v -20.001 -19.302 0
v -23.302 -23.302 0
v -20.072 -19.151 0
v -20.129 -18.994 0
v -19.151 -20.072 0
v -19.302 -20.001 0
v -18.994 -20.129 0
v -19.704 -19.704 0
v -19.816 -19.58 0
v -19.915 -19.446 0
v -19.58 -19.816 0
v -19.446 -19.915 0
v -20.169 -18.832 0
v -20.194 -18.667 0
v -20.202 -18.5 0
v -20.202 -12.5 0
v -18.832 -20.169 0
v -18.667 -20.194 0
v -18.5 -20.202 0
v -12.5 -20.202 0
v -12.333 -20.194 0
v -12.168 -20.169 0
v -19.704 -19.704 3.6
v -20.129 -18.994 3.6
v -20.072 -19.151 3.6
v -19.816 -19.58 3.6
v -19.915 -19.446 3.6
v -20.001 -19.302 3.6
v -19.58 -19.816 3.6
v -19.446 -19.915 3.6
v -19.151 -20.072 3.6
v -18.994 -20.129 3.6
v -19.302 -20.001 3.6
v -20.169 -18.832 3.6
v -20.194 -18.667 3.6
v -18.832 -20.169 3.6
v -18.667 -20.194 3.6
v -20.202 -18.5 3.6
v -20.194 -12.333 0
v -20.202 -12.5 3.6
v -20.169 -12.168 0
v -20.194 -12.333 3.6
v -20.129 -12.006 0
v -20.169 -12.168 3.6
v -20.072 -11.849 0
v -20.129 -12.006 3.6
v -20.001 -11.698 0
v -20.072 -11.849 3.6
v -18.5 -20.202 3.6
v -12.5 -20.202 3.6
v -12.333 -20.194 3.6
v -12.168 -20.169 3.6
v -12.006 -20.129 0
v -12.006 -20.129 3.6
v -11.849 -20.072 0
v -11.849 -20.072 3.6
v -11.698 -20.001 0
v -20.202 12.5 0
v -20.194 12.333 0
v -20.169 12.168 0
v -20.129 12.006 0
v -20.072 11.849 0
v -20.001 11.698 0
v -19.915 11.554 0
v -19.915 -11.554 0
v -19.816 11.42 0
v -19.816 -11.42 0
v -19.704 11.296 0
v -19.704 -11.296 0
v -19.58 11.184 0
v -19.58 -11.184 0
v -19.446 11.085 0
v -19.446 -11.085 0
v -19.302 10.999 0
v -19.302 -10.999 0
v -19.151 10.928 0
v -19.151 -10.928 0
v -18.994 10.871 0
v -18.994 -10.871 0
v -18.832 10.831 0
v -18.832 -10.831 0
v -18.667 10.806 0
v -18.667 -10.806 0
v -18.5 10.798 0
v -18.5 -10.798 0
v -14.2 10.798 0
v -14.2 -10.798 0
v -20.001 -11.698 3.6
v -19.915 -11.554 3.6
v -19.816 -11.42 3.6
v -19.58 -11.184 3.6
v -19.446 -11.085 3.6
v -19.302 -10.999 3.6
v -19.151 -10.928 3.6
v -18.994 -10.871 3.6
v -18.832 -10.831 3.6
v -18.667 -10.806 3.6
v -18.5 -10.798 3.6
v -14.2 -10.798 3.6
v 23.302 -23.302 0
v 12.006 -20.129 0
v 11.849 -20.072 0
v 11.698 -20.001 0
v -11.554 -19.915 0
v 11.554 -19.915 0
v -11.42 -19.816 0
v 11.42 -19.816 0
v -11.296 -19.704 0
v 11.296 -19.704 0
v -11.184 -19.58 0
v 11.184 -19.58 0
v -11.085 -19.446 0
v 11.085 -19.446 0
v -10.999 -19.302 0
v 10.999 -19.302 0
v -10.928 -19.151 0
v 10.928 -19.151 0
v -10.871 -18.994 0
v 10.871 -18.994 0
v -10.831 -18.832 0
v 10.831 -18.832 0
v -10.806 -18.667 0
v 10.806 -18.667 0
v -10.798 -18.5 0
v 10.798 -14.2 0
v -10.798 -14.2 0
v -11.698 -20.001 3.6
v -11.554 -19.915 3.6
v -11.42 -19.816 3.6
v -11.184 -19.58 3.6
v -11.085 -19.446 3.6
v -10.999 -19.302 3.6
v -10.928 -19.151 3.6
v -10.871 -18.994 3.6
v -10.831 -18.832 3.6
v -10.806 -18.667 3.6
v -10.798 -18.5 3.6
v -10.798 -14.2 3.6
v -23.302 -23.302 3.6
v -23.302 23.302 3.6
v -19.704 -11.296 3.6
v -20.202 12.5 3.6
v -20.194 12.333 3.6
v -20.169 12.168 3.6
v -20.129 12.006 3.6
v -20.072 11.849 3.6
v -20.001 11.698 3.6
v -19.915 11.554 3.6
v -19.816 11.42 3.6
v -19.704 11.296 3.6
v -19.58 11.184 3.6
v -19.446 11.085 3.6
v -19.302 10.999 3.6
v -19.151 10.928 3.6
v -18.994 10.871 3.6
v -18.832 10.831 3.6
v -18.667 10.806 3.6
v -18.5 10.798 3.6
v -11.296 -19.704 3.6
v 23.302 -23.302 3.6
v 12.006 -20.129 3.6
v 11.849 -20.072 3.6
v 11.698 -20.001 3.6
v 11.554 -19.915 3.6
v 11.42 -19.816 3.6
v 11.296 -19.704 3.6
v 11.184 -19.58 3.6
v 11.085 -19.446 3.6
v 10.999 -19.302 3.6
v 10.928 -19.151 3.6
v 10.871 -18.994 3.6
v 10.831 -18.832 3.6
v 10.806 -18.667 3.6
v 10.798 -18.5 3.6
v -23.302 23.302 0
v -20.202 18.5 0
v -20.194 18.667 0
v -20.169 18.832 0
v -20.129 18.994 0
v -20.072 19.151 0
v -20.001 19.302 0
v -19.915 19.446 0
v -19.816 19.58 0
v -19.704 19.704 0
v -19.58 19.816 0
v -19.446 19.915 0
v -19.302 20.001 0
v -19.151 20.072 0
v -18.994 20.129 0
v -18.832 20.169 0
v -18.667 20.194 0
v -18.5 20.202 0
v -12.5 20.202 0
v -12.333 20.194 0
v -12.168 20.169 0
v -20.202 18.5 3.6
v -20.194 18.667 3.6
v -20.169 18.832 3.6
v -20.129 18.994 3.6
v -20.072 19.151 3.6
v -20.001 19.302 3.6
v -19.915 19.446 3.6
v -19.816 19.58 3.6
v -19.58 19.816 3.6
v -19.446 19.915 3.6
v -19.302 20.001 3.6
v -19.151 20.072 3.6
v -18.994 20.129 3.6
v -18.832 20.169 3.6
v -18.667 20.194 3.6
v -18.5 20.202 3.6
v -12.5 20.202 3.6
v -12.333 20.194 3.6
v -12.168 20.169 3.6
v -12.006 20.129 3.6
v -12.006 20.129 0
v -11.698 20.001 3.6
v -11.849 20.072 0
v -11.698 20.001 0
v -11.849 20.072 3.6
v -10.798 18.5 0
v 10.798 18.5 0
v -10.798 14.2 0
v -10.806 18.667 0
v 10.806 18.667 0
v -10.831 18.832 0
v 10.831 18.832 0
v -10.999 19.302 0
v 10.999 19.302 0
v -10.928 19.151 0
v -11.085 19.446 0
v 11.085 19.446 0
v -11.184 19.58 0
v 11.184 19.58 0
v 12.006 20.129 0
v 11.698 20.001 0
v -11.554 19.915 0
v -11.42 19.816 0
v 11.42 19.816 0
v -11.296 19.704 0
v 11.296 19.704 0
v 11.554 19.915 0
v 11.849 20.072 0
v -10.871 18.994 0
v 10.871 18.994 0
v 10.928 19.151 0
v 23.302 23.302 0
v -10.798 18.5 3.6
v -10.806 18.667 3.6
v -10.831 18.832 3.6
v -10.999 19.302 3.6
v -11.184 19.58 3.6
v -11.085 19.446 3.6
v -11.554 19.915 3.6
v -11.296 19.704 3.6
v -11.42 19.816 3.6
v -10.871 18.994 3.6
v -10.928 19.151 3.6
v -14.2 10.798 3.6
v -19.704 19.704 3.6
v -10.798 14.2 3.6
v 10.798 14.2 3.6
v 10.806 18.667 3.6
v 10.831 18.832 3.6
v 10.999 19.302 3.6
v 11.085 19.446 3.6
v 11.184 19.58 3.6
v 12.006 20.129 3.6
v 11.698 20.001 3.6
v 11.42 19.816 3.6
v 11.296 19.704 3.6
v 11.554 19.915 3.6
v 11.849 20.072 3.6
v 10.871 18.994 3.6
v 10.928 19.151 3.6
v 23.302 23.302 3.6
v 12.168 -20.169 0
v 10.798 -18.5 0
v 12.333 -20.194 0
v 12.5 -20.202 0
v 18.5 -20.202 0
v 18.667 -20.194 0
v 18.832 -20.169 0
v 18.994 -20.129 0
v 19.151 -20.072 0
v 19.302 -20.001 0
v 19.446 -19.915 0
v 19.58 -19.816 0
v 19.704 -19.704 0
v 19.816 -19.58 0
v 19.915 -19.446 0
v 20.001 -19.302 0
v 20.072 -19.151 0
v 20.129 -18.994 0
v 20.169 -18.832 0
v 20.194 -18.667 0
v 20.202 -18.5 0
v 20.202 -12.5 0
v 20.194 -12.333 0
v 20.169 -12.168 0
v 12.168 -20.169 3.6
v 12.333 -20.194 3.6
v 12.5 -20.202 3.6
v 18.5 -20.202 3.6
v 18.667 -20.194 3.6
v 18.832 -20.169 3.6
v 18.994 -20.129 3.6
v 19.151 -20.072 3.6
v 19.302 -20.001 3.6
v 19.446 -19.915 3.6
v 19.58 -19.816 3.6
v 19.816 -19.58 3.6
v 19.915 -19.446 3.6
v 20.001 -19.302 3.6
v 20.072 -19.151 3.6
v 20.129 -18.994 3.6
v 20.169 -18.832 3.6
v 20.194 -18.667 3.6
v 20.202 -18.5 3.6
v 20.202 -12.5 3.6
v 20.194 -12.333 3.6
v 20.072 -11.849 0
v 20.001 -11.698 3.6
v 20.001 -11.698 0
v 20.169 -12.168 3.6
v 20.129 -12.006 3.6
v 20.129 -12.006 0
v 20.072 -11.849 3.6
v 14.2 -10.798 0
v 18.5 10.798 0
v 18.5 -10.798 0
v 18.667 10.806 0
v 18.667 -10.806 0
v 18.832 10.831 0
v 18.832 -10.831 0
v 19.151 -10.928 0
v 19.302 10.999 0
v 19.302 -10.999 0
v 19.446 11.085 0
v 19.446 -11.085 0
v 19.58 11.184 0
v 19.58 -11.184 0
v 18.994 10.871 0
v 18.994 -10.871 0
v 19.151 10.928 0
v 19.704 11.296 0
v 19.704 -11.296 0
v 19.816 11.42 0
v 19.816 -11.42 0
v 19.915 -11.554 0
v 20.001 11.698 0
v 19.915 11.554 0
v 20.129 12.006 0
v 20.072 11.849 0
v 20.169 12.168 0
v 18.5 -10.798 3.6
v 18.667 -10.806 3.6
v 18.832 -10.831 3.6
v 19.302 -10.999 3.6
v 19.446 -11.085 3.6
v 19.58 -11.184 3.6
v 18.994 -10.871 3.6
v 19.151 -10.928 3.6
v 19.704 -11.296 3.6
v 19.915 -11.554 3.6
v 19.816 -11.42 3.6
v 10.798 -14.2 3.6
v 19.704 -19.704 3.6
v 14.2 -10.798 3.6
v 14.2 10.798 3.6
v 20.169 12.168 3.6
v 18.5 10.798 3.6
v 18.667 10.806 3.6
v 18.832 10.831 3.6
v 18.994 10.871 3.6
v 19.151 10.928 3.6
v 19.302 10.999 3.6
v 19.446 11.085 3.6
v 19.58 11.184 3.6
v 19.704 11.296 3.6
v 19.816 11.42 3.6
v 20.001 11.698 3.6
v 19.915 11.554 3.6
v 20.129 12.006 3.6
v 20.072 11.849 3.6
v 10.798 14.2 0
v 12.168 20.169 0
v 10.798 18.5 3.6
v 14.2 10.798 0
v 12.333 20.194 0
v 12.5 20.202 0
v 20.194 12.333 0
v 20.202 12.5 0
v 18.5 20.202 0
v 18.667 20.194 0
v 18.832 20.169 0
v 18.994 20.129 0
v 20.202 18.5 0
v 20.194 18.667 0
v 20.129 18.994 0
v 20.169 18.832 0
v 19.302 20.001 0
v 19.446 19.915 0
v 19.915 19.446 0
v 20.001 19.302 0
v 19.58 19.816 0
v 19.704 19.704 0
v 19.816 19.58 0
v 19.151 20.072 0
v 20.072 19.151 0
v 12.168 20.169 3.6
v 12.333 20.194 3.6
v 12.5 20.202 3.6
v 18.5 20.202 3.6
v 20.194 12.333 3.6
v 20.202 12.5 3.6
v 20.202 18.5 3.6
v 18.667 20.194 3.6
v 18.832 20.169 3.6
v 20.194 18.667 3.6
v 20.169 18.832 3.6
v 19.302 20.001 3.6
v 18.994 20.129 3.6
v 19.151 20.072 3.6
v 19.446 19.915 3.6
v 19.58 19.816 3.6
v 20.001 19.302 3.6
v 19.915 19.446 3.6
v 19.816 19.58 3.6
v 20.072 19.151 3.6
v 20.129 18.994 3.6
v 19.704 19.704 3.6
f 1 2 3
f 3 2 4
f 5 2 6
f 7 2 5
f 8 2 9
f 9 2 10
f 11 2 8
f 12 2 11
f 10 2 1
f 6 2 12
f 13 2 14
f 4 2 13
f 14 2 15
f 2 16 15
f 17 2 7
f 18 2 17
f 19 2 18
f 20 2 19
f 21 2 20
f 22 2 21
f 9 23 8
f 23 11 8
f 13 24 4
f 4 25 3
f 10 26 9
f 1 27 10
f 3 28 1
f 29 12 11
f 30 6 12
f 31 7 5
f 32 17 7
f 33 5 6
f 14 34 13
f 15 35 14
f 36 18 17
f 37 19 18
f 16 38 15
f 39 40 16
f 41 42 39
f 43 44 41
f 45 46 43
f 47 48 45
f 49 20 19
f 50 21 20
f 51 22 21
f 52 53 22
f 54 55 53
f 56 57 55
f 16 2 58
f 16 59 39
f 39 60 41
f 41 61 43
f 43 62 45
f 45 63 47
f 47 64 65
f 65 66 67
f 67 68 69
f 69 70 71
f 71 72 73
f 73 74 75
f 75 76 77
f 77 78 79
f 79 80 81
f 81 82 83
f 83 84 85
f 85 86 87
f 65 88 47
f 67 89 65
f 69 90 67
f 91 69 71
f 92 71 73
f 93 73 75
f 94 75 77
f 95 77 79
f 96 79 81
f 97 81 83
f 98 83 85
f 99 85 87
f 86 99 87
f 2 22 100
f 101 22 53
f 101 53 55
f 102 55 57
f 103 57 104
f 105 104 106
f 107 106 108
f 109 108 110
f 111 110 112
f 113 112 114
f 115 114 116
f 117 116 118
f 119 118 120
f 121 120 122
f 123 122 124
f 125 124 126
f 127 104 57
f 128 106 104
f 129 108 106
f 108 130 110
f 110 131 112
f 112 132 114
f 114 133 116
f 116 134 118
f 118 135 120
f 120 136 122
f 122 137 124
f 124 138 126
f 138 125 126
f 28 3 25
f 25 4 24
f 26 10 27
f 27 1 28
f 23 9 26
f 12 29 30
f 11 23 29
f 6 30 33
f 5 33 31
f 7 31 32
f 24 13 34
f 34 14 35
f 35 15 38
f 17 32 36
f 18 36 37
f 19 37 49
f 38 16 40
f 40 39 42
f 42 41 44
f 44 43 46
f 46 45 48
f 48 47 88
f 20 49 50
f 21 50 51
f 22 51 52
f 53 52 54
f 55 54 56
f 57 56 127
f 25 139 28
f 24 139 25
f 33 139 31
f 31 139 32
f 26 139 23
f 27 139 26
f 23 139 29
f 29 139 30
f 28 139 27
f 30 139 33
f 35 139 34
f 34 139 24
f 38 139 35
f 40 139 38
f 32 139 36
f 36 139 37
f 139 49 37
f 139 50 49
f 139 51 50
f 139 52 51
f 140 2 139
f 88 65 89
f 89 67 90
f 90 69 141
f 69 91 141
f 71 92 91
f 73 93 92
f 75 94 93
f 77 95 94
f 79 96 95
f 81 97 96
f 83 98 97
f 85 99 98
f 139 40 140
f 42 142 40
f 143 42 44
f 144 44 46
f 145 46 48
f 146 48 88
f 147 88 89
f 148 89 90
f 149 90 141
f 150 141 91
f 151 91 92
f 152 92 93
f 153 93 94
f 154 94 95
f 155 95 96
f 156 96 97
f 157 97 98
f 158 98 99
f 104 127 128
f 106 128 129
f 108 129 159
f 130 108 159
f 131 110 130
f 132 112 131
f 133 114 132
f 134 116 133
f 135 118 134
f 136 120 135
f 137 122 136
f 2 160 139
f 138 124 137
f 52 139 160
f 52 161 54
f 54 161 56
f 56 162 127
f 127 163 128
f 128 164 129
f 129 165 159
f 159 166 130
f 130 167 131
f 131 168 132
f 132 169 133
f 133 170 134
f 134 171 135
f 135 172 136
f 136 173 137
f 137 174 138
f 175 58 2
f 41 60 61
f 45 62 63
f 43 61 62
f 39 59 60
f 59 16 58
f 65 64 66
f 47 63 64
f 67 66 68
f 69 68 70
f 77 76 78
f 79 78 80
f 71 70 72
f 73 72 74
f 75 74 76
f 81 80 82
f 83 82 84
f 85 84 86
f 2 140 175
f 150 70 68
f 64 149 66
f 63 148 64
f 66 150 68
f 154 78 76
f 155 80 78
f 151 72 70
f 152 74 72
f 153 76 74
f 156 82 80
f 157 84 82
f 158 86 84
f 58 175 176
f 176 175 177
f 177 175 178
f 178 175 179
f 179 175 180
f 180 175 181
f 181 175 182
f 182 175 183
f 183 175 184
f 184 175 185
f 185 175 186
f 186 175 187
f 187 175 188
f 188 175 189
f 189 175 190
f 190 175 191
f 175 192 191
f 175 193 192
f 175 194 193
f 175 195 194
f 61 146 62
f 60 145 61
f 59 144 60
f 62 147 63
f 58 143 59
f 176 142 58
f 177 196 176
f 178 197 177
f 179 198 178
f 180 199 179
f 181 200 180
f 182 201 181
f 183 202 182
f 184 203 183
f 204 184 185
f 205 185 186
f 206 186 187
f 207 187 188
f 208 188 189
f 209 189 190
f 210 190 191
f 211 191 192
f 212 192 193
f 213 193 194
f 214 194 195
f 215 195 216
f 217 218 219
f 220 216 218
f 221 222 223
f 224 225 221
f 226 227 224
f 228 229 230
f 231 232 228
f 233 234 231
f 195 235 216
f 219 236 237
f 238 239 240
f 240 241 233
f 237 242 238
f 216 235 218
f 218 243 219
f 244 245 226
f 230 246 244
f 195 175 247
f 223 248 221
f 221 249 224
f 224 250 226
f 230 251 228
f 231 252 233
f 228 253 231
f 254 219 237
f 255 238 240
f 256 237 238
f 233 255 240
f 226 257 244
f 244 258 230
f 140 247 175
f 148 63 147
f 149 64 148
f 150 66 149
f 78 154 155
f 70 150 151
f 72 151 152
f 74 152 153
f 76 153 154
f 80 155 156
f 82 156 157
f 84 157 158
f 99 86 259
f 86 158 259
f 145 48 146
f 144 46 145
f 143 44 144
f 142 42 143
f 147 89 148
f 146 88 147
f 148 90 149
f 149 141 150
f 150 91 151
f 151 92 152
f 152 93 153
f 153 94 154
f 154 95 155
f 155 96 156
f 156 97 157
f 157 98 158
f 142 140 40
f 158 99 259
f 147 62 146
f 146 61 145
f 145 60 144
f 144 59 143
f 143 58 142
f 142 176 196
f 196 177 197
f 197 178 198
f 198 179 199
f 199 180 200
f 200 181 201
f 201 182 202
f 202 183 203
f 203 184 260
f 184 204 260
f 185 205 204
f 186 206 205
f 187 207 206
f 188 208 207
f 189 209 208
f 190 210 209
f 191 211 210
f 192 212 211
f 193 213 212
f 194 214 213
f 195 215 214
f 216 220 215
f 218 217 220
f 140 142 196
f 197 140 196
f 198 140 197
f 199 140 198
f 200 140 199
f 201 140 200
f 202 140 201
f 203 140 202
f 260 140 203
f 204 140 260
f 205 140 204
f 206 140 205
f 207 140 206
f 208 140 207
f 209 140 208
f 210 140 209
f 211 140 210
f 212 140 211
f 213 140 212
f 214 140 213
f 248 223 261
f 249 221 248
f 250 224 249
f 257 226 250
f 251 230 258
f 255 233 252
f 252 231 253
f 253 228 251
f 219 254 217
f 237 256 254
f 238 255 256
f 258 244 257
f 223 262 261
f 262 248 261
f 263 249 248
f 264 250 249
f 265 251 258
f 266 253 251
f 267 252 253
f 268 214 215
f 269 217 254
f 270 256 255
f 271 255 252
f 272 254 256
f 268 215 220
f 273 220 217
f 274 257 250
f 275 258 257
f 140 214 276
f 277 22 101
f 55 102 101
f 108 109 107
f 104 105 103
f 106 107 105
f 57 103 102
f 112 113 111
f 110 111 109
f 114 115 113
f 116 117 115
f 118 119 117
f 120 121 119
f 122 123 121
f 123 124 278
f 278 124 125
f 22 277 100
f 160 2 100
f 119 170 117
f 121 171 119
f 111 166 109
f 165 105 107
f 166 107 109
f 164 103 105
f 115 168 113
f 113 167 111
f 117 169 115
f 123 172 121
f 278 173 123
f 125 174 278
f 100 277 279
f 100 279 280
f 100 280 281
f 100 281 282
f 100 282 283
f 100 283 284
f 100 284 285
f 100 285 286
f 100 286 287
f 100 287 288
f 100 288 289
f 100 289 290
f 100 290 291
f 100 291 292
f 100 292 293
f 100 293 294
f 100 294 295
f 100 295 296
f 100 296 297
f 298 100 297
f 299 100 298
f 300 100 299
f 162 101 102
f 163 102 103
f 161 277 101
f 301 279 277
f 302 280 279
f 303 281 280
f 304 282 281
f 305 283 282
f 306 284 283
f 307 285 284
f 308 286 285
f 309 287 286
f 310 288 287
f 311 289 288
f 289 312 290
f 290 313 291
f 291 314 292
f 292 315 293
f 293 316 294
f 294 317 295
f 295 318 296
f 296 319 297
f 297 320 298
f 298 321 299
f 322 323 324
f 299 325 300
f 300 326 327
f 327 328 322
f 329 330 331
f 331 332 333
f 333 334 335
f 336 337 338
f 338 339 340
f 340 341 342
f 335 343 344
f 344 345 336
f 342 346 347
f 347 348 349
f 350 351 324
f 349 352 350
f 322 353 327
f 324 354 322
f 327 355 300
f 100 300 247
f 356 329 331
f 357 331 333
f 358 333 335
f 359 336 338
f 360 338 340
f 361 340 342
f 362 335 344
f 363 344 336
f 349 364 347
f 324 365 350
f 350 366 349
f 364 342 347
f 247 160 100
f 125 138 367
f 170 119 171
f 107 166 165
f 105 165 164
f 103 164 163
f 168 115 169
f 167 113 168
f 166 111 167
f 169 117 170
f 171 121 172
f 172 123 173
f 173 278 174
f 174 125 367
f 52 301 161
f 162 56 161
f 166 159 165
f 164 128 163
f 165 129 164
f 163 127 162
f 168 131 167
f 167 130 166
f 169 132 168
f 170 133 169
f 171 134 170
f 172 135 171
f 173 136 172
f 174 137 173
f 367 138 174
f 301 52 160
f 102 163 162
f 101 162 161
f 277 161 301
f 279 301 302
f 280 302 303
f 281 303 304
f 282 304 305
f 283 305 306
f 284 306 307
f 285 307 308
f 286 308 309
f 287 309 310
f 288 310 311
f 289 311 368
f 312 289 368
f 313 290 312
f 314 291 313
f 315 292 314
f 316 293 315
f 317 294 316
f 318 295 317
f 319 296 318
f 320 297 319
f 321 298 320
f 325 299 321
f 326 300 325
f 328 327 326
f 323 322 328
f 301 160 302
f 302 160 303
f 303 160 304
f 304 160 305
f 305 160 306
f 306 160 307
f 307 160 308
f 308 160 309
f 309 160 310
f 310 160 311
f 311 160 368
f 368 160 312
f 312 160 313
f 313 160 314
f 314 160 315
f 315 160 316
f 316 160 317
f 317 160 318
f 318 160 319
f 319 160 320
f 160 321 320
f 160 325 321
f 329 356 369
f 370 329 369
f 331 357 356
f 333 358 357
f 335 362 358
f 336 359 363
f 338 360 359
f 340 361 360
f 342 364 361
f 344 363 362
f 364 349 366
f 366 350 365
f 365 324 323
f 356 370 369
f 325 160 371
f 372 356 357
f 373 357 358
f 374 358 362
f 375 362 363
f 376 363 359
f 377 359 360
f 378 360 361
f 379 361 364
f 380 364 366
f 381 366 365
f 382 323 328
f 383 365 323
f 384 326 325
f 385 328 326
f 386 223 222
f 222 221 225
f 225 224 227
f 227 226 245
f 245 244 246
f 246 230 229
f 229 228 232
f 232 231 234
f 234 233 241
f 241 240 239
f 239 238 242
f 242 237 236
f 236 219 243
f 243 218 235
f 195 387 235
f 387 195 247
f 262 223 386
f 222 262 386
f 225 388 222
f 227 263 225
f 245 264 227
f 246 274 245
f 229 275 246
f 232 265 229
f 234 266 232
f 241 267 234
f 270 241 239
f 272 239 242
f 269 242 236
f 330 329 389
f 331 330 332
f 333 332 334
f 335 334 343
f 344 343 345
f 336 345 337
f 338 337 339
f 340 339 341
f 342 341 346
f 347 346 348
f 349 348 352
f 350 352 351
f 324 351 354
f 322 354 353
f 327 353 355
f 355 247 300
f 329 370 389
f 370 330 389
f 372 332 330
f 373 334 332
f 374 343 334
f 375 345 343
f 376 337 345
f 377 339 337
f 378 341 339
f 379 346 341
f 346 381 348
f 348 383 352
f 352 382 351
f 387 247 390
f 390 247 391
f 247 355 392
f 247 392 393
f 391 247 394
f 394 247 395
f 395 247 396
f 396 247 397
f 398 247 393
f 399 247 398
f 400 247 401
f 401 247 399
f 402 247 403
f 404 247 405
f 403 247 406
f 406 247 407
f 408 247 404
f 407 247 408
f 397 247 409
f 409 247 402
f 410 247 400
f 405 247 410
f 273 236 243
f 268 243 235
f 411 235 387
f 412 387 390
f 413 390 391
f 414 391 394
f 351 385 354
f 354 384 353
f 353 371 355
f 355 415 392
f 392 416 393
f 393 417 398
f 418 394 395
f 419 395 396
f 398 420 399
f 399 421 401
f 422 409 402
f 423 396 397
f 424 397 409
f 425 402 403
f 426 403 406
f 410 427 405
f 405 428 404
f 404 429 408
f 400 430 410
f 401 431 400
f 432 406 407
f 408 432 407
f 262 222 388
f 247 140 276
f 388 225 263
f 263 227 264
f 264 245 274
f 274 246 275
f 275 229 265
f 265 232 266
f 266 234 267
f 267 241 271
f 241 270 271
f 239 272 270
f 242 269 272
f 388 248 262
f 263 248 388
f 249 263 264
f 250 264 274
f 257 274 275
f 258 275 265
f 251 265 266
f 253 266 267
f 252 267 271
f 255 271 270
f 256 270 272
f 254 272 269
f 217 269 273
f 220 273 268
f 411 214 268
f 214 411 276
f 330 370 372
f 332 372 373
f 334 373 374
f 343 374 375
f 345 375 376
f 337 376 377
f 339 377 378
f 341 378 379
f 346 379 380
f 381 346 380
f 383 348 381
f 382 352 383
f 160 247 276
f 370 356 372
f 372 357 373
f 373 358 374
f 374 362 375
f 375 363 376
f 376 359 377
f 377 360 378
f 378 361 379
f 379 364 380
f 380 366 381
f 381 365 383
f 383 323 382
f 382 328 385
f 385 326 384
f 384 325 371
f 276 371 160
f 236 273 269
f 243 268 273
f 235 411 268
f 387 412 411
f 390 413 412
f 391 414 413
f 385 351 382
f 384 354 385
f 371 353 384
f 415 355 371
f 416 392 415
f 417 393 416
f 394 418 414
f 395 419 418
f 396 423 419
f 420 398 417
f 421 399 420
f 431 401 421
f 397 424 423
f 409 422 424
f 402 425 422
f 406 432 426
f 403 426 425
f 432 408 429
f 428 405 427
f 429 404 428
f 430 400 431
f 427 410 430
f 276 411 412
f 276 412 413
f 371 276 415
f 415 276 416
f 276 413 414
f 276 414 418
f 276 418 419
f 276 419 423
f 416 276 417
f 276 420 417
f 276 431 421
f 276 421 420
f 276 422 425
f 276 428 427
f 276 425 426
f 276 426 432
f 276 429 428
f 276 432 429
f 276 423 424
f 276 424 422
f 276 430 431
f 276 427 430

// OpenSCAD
// assembly: printed bodies in the closed pose; references are % ghosts (never printed)
color("#4f81bd") {
  // body plate
  difference() {
    union() {
      // body plate (plate)
      multmatrix([[1, 0, 0, 0], [0, 1, 0, 0], [0, 0, 1, 0], [0, 0, 0, 1]]) translate([-23.30205, -23.30205, 0]) cube([46.6041, 46.6041, 3.6]);
    }
    // cut slot_0 (bolt_slot)
    multmatrix([[1, 0, 0, -15.5], [0, 1, 0, -15.5], [0, 0, 1, -1], [0, 0, 0, 1]]) linear_extrude(height=5.6) polygon(points=[[3, -4.70205], [3.16683, -4.693854], [3.332054, -4.669346], [3.494079, -4.62876], [3.651346, -4.572489], [3.802341, -4.501074], [3.945608, -4.415203], [4.079769, -4.315703], [4.203531, -4.203531], [4.315703, -4.079769], [4.415203, -3.945608], [4.501074, -3.802341], [4.572489, -3.651346], [4.62876, -3.494079], [4.669346, -3.332054], [4.693854, -3.16683], [4.70205, -3], [4.70205, 3], [4.693854, 3.16683], [4.669346, 3.332054], [4.62876, 3.494079], [4.572489, 3.651346], [4.501074, 3.802341], [4.415203, 3.945608], [4.315703, 4.079769], [4.203531, 4.203531], [4.079769, 4.315703], [3.945608, 4.415203], [3.802341, 4.501074], [3.651346, 4.572489], [3.494079, 4.62876], [3.332054, 4.669346], [3.16683, 4.693854], [3, 4.70205], [-3, 4.70205], [-3.16683, 4.693854], [-3.332054, 4.669346], [-3.494079, 4.62876], [-3.651346, 4.572489], [-3.802341, 4.501074], [-3.945608, 4.415203], [-4.079769, 4.315703], [-4.203531, 4.203531], [-4.315703, 4.079769], [-4.415203, 3.945608], [-4.501074, 3.802341], [-4.572489, 3.651346], [-4.62876, 3.494079], [-4.669346, 3.332054], [-4.693854, 3.16683], [-4.70205, 3], [-4.70205, -3], [-4.693854, -3.16683], [-4.669346, -3.332054], [-4.62876, -3.494079], [-4.572489, -3.651346], [-4.501074, -3.802341], [-4.415203, -3.945608], [-4.315703, -4.079769], [-4.203531, -4.203531], [-4.079769, -4.315703], [-3.945608, -4.415203], [-3.802341, -4.501074], [-3.651346, -4.572489], [-3.494079, -4.62876], [-3.332054, -4.669346], [-3.16683, -4.693854], [-3, -4.70205]]);
    // cut slot_1 (bolt_slot)
    multmatrix([[1, 0, 0, 15.5], [0, 1, 0, -15.5], [0, 0, 1, -1], [0, 0, 0, 1]]) linear_extrude(height=5.6) polygon(points=[[3, -4.70205], [3.16683, -4.693854], [3.332054, -4.669346], [3.494079, -4.62876], [3.651346, -4.572489], [3.802341, -4.501074], [3.945608, -4.415203], [4.079769, -4.315703], [4.203531, -4.203531], [4.315703, -4.079769], [4.415203, -3.945608], [4.501074, -3.802341], [4.572489, -3.651346], [4.62876, -3.494079], [4.669346, -3.332054], [4.693854, -3.16683], [4.70205, -3], [4.70205, 3], [4.693854, 3.16683], [4.669346, 3.332054], [4.62876, 3.494079], [4.572489, 3.651346], [4.501074, 3.802341], [4.415203, 3.945608], [4.315703, 4.079769], [4.203531, 4.203531], [4.079769, 4.315703], [3.945608, 4.415203], [3.802341, 4.501074], [3.651346, 4.572489], [3.494079, 4.62876], [3.332054, 4.669346], [3.16683, 4.693854], [3, 4.70205], [-3, 4.70205], [-3.16683, 4.693854], [-3.332054, 4.669346], [-3.494079, 4.62876], [-3.651346, 4.572489], [-3.802341, 4.501074], [-3.945608, 4.415203], [-4.079769, 4.315703], [-4.203531, 4.203531], [-4.315703, 4.079769], [-4.415203, 3.945608], [-4.501074, 3.802341], [-4.572489, 3.651346], [-4.62876, 3.494079], [-4.669346, 3.332054], [-4.693854, 3.16683], [-4.70205, 3], [-4.70205, -3], [-4.693854, -3.16683], [-4.669346, -3.332054], [-4.62876, -3.494079], [-4.572489, -3.651346], [-4.501074, -3.802341], [-4.415203, -3.945608], [-4.315703, -4.079769], [-4.203531, -4.203531], [-4.079769, -4.315703], [-3.945608, -4.415203], [-3.802341, -4.501074], [-3.651346, -4.572489], [-3.494079, -4.62876], [-3.332054, -4.669346], [-3.16683, -4.693854], [-3, -4.70205]]);
    // cut slot_2 (bolt_slot)
    multmatrix([[1, 0, 0, -15.5], [0, 1, 0, 15.5], [0, 0, 1, -1], [0, 0, 0, 1]]) linear_extrude(height=5.6) polygon(points=[[3, -4.70205], [3.16683, -4.693854], [3.332054, -4.669346], [3.494079, -4.62876], [3.651346, -4.572489], [3.802341, -4.501074], [3.945608, -4.415203], [4.079769, -4.315703], [4.203531, -4.203531], [4.315703, -4.079769], [4.415203, -3.945608], [4.501074, -3.802341], [4.572489, -3.651346], [4.62876, -3.494079], [4.669346, -3.332054], [4.693854, -3.16683], [4.70205, -3], [4.70205, 3], [4.693854, 3.16683], [4.669346, 3.332054], [4.62876, 3.494079], [4.572489, 3.651346], [4.501074, 3.802341], [4.415203, 3.945608], [4.315703, 4.079769], [4.203531, 4.203531], [4.079769, 4.315703], [3.945608, 4.415203], [3.802341, 4.501074], [3.651346, 4.572489], [3.494079, 4.62876], [3.332054, 4.669346], [3.16683, 4.693854], [3, 4.70205], [-3, 4.70205], [-3.16683, 4.693854], [-3.332054, 4.669346], [-3.494079, 4.62876], [-3.651346, 4.572489], [-3.802341, 4.501074], [-3.945608, 4.415203], [-4.079769, 4.315703], [-4.203531, 4.203531], [-4.315703, 4.079769], [-4.415203, 3.945608], [-4.501074, 3.802341], [-4.572489, 3.651346], [-4.62876, 3.494079], [-4.669346, 3.332054], [-4.693854, 3.16683], [-4.70205, 3], [-4.70205, -3], [-4.693854, -3.16683], [-4.669346, -3.332054], [-4.62876, -3.494079], [-4.572489, -3.651346], [-4.501074, -3.802341], [-4.415203, -3.945608], [-4.315703, -4.079769], [-4.203531, -4.203531], [-4.079769, -4.315703], [-3.945608, -4.415203], [-3.802341, -4.501074], [-3.651346, -4.572489], [-3.494079, -4.62876], [-3.332054, -4.669346], [-3.16683, -4.693854], [-3, -4.70205]]);
    // cut slot_3 (bolt_slot)
    multmatrix([[1, 0, 0, 15.5], [0, 1, 0, 15.5], [0, 0, 1, -1], [0, 0, 0, 1]]) linear_extrude(height=5.6) polygon(points=[[3, -4.70205], [3.16683, -4.693854], [3.332054, -4.669346], [3.494079, -4.62876], [3.651346, -4.572489], [3.802341, -4.501074], [3.945608, -4.415203], [4.079769, -4.315703], [4.203531, -4.203531], [4.315703, -4.079769], [4.415203, -3.945608], [4.501074, -3.802341], [4.572489, -3.651346], [4.62876, -3.494079], [4.669346, -3.332054], [4.693854, -3.16683], [4.70205, -3], [4.70205, 3], [4.693854, 3.16683], [4.669346, 3.332054], [4.62876, 3.494079], [4.572489, 3.651346], [4.501074, 3.802341], [4.415203, 3.945608], [4.315703, 4.079769], [4.203531, 4.203531], [4.079769, 4.315703], [3.945608, 4.415203], [3.802341, 4.501074], [3.651346, 4.572489], [3.494079, 4.62876], [3.332054, 4.669346], [3.16683, 4.693854], [3, 4.70205], [-3, 4.70205], [-3.16683, 4.693854], [-3.332054, 4.669346], [-3.494079, 4.62876], [-3.651346, 4.572489], [-3.802341, 4.501074], [-3.945608, 4.415203], [-4.079769, 4.315703], [-4.203531, 4.203531], [-4.315703, 4.079769], [-4.415203, 3.945608], [-4.501074, 3.802341], [-4.572489, 3.651346], [-4.62876, 3.494079], [-4.669346, 3.332054], [-4.693854, 3.16683], [-4.70205, 3], [-4.70205, -3], [-4.693854, -3.16683], [-4.669346, -3.332054], [-4.62876, -3.494079], [-4.572489, -3.651346], [-4.501074, -3.802341], [-4.415203, -3.945608], [-4.315703, -4.079769], [-4.203531, -4.203531], [-4.079769, -4.315703], [-3.945608, -4.415203], [-3.802341, -4.501074], [-3.651346, -4.572489], [-3.494079, -4.62876], [-3.332054, -4.669346], [-3.16683, -4.693854], [-3, -4.70205]]);
    // cut clear_pilot (recess)
    multmatrix([[1, 0, 0, 0], [0, 1, 0, 0], [0, 0, 1, -1], [0, 0, 0, 1]]) translate([-14.2, -14.2, 0]) cube([28.4, 28.4, 5.6]);
    // cut clear_shaft (recess)
    multmatrix([[1, 0, 0, 0], [0, 1, 0, 0], [0, 0, 1, -1], [0, 0, 0, 1]]) translate([-5.7, -5.7, 0]) cube([11.4, 11.4, 5.6]);
  }
}
%color("#7f7f7f") multmatrix([[1, 0, 0, 0], [0, 1, 0, 0], [0, 0, 1, 0], [0, 0, 0, 1]]) union() { multmatrix([[1, 0, 0, -21.15], [0, 1, 0, -21.15], [0, 0, 1, -40], [0, 0, 0, 1]]) cube([42.3, 42.3, 40]); multmatrix([[1, 0, 0, 0], [0, 1, 0, 0], [0, 0, 1, 0], [0, 0, 0, 1]]) cylinder(h=2, d=22, $fn=64); multmatrix([[1, 0, 0, 0], [0, 1, 0, 0], [0, 0, 1, 0], [0, 0, 0, 1]]) cylinder(h=24, d=5, $fn=64); } // ghost board
%color("#7f7f7f") multmatrix([[1, 0, 0, -15.5], [0, 1, 0, -15.5], [0, 0, 1, 3.6], [0, 0, 0, 1]]) union() { multmatrix([[1, 0, 0, 0], [0, 1, 0, 0], [0, 0, 1, -8], [0, 0, 0, 1]]) cylinder(h=8, d=3, $fn=64); multmatrix([[1, 0, 0, 0], [0, 1, 0, 0], [0, 0, 1, 0], [0, 0, 0, 1]]) cylinder(h=3, d=5.5, $fn=64); } // ghost bolt_0
%color("#7f7f7f") multmatrix([[1, 0, 0, 15.5], [0, 1, 0, -15.5], [0, 0, 1, 3.6], [0, 0, 0, 1]]) union() { multmatrix([[1, 0, 0, 0], [0, 1, 0, 0], [0, 0, 1, -8], [0, 0, 0, 1]]) cylinder(h=8, d=3, $fn=64); multmatrix([[1, 0, 0, 0], [0, 1, 0, 0], [0, 0, 1, 0], [0, 0, 0, 1]]) cylinder(h=3, d=5.5, $fn=64); } // ghost bolt_1
%color("#7f7f7f") multmatrix([[1, 0, 0, -15.5], [0, 1, 0, 15.5], [0, 0, 1, 3.6], [0, 0, 0, 1]]) union() { multmatrix([[1, 0, 0, 0], [0, 1, 0, 0], [0, 0, 1, -8], [0, 0, 0, 1]]) cylinder(h=8, d=3, $fn=64); multmatrix([[1, 0, 0, 0], [0, 1, 0, 0], [0, 0, 1, 0], [0, 0, 0, 1]]) cylinder(h=3, d=5.5, $fn=64); } // ghost bolt_2
%color("#7f7f7f") multmatrix([[1, 0, 0, 15.5], [0, 1, 0, 15.5], [0, 0, 1, 3.6], [0, 0, 0, 1]]) union() { multmatrix([[1, 0, 0, 0], [0, 1, 0, 0], [0, 0, 1, -8], [0, 0, 0, 1]]) cylinder(h=8, d=3, $fn=64); multmatrix([[1, 0, 0, 0], [0, 1, 0, 0], [0, 0, 1, 0], [0, 0, 0, 1]]) cylinder(h=3, d=5.5, $fn=64); } // ghost bolt_3
